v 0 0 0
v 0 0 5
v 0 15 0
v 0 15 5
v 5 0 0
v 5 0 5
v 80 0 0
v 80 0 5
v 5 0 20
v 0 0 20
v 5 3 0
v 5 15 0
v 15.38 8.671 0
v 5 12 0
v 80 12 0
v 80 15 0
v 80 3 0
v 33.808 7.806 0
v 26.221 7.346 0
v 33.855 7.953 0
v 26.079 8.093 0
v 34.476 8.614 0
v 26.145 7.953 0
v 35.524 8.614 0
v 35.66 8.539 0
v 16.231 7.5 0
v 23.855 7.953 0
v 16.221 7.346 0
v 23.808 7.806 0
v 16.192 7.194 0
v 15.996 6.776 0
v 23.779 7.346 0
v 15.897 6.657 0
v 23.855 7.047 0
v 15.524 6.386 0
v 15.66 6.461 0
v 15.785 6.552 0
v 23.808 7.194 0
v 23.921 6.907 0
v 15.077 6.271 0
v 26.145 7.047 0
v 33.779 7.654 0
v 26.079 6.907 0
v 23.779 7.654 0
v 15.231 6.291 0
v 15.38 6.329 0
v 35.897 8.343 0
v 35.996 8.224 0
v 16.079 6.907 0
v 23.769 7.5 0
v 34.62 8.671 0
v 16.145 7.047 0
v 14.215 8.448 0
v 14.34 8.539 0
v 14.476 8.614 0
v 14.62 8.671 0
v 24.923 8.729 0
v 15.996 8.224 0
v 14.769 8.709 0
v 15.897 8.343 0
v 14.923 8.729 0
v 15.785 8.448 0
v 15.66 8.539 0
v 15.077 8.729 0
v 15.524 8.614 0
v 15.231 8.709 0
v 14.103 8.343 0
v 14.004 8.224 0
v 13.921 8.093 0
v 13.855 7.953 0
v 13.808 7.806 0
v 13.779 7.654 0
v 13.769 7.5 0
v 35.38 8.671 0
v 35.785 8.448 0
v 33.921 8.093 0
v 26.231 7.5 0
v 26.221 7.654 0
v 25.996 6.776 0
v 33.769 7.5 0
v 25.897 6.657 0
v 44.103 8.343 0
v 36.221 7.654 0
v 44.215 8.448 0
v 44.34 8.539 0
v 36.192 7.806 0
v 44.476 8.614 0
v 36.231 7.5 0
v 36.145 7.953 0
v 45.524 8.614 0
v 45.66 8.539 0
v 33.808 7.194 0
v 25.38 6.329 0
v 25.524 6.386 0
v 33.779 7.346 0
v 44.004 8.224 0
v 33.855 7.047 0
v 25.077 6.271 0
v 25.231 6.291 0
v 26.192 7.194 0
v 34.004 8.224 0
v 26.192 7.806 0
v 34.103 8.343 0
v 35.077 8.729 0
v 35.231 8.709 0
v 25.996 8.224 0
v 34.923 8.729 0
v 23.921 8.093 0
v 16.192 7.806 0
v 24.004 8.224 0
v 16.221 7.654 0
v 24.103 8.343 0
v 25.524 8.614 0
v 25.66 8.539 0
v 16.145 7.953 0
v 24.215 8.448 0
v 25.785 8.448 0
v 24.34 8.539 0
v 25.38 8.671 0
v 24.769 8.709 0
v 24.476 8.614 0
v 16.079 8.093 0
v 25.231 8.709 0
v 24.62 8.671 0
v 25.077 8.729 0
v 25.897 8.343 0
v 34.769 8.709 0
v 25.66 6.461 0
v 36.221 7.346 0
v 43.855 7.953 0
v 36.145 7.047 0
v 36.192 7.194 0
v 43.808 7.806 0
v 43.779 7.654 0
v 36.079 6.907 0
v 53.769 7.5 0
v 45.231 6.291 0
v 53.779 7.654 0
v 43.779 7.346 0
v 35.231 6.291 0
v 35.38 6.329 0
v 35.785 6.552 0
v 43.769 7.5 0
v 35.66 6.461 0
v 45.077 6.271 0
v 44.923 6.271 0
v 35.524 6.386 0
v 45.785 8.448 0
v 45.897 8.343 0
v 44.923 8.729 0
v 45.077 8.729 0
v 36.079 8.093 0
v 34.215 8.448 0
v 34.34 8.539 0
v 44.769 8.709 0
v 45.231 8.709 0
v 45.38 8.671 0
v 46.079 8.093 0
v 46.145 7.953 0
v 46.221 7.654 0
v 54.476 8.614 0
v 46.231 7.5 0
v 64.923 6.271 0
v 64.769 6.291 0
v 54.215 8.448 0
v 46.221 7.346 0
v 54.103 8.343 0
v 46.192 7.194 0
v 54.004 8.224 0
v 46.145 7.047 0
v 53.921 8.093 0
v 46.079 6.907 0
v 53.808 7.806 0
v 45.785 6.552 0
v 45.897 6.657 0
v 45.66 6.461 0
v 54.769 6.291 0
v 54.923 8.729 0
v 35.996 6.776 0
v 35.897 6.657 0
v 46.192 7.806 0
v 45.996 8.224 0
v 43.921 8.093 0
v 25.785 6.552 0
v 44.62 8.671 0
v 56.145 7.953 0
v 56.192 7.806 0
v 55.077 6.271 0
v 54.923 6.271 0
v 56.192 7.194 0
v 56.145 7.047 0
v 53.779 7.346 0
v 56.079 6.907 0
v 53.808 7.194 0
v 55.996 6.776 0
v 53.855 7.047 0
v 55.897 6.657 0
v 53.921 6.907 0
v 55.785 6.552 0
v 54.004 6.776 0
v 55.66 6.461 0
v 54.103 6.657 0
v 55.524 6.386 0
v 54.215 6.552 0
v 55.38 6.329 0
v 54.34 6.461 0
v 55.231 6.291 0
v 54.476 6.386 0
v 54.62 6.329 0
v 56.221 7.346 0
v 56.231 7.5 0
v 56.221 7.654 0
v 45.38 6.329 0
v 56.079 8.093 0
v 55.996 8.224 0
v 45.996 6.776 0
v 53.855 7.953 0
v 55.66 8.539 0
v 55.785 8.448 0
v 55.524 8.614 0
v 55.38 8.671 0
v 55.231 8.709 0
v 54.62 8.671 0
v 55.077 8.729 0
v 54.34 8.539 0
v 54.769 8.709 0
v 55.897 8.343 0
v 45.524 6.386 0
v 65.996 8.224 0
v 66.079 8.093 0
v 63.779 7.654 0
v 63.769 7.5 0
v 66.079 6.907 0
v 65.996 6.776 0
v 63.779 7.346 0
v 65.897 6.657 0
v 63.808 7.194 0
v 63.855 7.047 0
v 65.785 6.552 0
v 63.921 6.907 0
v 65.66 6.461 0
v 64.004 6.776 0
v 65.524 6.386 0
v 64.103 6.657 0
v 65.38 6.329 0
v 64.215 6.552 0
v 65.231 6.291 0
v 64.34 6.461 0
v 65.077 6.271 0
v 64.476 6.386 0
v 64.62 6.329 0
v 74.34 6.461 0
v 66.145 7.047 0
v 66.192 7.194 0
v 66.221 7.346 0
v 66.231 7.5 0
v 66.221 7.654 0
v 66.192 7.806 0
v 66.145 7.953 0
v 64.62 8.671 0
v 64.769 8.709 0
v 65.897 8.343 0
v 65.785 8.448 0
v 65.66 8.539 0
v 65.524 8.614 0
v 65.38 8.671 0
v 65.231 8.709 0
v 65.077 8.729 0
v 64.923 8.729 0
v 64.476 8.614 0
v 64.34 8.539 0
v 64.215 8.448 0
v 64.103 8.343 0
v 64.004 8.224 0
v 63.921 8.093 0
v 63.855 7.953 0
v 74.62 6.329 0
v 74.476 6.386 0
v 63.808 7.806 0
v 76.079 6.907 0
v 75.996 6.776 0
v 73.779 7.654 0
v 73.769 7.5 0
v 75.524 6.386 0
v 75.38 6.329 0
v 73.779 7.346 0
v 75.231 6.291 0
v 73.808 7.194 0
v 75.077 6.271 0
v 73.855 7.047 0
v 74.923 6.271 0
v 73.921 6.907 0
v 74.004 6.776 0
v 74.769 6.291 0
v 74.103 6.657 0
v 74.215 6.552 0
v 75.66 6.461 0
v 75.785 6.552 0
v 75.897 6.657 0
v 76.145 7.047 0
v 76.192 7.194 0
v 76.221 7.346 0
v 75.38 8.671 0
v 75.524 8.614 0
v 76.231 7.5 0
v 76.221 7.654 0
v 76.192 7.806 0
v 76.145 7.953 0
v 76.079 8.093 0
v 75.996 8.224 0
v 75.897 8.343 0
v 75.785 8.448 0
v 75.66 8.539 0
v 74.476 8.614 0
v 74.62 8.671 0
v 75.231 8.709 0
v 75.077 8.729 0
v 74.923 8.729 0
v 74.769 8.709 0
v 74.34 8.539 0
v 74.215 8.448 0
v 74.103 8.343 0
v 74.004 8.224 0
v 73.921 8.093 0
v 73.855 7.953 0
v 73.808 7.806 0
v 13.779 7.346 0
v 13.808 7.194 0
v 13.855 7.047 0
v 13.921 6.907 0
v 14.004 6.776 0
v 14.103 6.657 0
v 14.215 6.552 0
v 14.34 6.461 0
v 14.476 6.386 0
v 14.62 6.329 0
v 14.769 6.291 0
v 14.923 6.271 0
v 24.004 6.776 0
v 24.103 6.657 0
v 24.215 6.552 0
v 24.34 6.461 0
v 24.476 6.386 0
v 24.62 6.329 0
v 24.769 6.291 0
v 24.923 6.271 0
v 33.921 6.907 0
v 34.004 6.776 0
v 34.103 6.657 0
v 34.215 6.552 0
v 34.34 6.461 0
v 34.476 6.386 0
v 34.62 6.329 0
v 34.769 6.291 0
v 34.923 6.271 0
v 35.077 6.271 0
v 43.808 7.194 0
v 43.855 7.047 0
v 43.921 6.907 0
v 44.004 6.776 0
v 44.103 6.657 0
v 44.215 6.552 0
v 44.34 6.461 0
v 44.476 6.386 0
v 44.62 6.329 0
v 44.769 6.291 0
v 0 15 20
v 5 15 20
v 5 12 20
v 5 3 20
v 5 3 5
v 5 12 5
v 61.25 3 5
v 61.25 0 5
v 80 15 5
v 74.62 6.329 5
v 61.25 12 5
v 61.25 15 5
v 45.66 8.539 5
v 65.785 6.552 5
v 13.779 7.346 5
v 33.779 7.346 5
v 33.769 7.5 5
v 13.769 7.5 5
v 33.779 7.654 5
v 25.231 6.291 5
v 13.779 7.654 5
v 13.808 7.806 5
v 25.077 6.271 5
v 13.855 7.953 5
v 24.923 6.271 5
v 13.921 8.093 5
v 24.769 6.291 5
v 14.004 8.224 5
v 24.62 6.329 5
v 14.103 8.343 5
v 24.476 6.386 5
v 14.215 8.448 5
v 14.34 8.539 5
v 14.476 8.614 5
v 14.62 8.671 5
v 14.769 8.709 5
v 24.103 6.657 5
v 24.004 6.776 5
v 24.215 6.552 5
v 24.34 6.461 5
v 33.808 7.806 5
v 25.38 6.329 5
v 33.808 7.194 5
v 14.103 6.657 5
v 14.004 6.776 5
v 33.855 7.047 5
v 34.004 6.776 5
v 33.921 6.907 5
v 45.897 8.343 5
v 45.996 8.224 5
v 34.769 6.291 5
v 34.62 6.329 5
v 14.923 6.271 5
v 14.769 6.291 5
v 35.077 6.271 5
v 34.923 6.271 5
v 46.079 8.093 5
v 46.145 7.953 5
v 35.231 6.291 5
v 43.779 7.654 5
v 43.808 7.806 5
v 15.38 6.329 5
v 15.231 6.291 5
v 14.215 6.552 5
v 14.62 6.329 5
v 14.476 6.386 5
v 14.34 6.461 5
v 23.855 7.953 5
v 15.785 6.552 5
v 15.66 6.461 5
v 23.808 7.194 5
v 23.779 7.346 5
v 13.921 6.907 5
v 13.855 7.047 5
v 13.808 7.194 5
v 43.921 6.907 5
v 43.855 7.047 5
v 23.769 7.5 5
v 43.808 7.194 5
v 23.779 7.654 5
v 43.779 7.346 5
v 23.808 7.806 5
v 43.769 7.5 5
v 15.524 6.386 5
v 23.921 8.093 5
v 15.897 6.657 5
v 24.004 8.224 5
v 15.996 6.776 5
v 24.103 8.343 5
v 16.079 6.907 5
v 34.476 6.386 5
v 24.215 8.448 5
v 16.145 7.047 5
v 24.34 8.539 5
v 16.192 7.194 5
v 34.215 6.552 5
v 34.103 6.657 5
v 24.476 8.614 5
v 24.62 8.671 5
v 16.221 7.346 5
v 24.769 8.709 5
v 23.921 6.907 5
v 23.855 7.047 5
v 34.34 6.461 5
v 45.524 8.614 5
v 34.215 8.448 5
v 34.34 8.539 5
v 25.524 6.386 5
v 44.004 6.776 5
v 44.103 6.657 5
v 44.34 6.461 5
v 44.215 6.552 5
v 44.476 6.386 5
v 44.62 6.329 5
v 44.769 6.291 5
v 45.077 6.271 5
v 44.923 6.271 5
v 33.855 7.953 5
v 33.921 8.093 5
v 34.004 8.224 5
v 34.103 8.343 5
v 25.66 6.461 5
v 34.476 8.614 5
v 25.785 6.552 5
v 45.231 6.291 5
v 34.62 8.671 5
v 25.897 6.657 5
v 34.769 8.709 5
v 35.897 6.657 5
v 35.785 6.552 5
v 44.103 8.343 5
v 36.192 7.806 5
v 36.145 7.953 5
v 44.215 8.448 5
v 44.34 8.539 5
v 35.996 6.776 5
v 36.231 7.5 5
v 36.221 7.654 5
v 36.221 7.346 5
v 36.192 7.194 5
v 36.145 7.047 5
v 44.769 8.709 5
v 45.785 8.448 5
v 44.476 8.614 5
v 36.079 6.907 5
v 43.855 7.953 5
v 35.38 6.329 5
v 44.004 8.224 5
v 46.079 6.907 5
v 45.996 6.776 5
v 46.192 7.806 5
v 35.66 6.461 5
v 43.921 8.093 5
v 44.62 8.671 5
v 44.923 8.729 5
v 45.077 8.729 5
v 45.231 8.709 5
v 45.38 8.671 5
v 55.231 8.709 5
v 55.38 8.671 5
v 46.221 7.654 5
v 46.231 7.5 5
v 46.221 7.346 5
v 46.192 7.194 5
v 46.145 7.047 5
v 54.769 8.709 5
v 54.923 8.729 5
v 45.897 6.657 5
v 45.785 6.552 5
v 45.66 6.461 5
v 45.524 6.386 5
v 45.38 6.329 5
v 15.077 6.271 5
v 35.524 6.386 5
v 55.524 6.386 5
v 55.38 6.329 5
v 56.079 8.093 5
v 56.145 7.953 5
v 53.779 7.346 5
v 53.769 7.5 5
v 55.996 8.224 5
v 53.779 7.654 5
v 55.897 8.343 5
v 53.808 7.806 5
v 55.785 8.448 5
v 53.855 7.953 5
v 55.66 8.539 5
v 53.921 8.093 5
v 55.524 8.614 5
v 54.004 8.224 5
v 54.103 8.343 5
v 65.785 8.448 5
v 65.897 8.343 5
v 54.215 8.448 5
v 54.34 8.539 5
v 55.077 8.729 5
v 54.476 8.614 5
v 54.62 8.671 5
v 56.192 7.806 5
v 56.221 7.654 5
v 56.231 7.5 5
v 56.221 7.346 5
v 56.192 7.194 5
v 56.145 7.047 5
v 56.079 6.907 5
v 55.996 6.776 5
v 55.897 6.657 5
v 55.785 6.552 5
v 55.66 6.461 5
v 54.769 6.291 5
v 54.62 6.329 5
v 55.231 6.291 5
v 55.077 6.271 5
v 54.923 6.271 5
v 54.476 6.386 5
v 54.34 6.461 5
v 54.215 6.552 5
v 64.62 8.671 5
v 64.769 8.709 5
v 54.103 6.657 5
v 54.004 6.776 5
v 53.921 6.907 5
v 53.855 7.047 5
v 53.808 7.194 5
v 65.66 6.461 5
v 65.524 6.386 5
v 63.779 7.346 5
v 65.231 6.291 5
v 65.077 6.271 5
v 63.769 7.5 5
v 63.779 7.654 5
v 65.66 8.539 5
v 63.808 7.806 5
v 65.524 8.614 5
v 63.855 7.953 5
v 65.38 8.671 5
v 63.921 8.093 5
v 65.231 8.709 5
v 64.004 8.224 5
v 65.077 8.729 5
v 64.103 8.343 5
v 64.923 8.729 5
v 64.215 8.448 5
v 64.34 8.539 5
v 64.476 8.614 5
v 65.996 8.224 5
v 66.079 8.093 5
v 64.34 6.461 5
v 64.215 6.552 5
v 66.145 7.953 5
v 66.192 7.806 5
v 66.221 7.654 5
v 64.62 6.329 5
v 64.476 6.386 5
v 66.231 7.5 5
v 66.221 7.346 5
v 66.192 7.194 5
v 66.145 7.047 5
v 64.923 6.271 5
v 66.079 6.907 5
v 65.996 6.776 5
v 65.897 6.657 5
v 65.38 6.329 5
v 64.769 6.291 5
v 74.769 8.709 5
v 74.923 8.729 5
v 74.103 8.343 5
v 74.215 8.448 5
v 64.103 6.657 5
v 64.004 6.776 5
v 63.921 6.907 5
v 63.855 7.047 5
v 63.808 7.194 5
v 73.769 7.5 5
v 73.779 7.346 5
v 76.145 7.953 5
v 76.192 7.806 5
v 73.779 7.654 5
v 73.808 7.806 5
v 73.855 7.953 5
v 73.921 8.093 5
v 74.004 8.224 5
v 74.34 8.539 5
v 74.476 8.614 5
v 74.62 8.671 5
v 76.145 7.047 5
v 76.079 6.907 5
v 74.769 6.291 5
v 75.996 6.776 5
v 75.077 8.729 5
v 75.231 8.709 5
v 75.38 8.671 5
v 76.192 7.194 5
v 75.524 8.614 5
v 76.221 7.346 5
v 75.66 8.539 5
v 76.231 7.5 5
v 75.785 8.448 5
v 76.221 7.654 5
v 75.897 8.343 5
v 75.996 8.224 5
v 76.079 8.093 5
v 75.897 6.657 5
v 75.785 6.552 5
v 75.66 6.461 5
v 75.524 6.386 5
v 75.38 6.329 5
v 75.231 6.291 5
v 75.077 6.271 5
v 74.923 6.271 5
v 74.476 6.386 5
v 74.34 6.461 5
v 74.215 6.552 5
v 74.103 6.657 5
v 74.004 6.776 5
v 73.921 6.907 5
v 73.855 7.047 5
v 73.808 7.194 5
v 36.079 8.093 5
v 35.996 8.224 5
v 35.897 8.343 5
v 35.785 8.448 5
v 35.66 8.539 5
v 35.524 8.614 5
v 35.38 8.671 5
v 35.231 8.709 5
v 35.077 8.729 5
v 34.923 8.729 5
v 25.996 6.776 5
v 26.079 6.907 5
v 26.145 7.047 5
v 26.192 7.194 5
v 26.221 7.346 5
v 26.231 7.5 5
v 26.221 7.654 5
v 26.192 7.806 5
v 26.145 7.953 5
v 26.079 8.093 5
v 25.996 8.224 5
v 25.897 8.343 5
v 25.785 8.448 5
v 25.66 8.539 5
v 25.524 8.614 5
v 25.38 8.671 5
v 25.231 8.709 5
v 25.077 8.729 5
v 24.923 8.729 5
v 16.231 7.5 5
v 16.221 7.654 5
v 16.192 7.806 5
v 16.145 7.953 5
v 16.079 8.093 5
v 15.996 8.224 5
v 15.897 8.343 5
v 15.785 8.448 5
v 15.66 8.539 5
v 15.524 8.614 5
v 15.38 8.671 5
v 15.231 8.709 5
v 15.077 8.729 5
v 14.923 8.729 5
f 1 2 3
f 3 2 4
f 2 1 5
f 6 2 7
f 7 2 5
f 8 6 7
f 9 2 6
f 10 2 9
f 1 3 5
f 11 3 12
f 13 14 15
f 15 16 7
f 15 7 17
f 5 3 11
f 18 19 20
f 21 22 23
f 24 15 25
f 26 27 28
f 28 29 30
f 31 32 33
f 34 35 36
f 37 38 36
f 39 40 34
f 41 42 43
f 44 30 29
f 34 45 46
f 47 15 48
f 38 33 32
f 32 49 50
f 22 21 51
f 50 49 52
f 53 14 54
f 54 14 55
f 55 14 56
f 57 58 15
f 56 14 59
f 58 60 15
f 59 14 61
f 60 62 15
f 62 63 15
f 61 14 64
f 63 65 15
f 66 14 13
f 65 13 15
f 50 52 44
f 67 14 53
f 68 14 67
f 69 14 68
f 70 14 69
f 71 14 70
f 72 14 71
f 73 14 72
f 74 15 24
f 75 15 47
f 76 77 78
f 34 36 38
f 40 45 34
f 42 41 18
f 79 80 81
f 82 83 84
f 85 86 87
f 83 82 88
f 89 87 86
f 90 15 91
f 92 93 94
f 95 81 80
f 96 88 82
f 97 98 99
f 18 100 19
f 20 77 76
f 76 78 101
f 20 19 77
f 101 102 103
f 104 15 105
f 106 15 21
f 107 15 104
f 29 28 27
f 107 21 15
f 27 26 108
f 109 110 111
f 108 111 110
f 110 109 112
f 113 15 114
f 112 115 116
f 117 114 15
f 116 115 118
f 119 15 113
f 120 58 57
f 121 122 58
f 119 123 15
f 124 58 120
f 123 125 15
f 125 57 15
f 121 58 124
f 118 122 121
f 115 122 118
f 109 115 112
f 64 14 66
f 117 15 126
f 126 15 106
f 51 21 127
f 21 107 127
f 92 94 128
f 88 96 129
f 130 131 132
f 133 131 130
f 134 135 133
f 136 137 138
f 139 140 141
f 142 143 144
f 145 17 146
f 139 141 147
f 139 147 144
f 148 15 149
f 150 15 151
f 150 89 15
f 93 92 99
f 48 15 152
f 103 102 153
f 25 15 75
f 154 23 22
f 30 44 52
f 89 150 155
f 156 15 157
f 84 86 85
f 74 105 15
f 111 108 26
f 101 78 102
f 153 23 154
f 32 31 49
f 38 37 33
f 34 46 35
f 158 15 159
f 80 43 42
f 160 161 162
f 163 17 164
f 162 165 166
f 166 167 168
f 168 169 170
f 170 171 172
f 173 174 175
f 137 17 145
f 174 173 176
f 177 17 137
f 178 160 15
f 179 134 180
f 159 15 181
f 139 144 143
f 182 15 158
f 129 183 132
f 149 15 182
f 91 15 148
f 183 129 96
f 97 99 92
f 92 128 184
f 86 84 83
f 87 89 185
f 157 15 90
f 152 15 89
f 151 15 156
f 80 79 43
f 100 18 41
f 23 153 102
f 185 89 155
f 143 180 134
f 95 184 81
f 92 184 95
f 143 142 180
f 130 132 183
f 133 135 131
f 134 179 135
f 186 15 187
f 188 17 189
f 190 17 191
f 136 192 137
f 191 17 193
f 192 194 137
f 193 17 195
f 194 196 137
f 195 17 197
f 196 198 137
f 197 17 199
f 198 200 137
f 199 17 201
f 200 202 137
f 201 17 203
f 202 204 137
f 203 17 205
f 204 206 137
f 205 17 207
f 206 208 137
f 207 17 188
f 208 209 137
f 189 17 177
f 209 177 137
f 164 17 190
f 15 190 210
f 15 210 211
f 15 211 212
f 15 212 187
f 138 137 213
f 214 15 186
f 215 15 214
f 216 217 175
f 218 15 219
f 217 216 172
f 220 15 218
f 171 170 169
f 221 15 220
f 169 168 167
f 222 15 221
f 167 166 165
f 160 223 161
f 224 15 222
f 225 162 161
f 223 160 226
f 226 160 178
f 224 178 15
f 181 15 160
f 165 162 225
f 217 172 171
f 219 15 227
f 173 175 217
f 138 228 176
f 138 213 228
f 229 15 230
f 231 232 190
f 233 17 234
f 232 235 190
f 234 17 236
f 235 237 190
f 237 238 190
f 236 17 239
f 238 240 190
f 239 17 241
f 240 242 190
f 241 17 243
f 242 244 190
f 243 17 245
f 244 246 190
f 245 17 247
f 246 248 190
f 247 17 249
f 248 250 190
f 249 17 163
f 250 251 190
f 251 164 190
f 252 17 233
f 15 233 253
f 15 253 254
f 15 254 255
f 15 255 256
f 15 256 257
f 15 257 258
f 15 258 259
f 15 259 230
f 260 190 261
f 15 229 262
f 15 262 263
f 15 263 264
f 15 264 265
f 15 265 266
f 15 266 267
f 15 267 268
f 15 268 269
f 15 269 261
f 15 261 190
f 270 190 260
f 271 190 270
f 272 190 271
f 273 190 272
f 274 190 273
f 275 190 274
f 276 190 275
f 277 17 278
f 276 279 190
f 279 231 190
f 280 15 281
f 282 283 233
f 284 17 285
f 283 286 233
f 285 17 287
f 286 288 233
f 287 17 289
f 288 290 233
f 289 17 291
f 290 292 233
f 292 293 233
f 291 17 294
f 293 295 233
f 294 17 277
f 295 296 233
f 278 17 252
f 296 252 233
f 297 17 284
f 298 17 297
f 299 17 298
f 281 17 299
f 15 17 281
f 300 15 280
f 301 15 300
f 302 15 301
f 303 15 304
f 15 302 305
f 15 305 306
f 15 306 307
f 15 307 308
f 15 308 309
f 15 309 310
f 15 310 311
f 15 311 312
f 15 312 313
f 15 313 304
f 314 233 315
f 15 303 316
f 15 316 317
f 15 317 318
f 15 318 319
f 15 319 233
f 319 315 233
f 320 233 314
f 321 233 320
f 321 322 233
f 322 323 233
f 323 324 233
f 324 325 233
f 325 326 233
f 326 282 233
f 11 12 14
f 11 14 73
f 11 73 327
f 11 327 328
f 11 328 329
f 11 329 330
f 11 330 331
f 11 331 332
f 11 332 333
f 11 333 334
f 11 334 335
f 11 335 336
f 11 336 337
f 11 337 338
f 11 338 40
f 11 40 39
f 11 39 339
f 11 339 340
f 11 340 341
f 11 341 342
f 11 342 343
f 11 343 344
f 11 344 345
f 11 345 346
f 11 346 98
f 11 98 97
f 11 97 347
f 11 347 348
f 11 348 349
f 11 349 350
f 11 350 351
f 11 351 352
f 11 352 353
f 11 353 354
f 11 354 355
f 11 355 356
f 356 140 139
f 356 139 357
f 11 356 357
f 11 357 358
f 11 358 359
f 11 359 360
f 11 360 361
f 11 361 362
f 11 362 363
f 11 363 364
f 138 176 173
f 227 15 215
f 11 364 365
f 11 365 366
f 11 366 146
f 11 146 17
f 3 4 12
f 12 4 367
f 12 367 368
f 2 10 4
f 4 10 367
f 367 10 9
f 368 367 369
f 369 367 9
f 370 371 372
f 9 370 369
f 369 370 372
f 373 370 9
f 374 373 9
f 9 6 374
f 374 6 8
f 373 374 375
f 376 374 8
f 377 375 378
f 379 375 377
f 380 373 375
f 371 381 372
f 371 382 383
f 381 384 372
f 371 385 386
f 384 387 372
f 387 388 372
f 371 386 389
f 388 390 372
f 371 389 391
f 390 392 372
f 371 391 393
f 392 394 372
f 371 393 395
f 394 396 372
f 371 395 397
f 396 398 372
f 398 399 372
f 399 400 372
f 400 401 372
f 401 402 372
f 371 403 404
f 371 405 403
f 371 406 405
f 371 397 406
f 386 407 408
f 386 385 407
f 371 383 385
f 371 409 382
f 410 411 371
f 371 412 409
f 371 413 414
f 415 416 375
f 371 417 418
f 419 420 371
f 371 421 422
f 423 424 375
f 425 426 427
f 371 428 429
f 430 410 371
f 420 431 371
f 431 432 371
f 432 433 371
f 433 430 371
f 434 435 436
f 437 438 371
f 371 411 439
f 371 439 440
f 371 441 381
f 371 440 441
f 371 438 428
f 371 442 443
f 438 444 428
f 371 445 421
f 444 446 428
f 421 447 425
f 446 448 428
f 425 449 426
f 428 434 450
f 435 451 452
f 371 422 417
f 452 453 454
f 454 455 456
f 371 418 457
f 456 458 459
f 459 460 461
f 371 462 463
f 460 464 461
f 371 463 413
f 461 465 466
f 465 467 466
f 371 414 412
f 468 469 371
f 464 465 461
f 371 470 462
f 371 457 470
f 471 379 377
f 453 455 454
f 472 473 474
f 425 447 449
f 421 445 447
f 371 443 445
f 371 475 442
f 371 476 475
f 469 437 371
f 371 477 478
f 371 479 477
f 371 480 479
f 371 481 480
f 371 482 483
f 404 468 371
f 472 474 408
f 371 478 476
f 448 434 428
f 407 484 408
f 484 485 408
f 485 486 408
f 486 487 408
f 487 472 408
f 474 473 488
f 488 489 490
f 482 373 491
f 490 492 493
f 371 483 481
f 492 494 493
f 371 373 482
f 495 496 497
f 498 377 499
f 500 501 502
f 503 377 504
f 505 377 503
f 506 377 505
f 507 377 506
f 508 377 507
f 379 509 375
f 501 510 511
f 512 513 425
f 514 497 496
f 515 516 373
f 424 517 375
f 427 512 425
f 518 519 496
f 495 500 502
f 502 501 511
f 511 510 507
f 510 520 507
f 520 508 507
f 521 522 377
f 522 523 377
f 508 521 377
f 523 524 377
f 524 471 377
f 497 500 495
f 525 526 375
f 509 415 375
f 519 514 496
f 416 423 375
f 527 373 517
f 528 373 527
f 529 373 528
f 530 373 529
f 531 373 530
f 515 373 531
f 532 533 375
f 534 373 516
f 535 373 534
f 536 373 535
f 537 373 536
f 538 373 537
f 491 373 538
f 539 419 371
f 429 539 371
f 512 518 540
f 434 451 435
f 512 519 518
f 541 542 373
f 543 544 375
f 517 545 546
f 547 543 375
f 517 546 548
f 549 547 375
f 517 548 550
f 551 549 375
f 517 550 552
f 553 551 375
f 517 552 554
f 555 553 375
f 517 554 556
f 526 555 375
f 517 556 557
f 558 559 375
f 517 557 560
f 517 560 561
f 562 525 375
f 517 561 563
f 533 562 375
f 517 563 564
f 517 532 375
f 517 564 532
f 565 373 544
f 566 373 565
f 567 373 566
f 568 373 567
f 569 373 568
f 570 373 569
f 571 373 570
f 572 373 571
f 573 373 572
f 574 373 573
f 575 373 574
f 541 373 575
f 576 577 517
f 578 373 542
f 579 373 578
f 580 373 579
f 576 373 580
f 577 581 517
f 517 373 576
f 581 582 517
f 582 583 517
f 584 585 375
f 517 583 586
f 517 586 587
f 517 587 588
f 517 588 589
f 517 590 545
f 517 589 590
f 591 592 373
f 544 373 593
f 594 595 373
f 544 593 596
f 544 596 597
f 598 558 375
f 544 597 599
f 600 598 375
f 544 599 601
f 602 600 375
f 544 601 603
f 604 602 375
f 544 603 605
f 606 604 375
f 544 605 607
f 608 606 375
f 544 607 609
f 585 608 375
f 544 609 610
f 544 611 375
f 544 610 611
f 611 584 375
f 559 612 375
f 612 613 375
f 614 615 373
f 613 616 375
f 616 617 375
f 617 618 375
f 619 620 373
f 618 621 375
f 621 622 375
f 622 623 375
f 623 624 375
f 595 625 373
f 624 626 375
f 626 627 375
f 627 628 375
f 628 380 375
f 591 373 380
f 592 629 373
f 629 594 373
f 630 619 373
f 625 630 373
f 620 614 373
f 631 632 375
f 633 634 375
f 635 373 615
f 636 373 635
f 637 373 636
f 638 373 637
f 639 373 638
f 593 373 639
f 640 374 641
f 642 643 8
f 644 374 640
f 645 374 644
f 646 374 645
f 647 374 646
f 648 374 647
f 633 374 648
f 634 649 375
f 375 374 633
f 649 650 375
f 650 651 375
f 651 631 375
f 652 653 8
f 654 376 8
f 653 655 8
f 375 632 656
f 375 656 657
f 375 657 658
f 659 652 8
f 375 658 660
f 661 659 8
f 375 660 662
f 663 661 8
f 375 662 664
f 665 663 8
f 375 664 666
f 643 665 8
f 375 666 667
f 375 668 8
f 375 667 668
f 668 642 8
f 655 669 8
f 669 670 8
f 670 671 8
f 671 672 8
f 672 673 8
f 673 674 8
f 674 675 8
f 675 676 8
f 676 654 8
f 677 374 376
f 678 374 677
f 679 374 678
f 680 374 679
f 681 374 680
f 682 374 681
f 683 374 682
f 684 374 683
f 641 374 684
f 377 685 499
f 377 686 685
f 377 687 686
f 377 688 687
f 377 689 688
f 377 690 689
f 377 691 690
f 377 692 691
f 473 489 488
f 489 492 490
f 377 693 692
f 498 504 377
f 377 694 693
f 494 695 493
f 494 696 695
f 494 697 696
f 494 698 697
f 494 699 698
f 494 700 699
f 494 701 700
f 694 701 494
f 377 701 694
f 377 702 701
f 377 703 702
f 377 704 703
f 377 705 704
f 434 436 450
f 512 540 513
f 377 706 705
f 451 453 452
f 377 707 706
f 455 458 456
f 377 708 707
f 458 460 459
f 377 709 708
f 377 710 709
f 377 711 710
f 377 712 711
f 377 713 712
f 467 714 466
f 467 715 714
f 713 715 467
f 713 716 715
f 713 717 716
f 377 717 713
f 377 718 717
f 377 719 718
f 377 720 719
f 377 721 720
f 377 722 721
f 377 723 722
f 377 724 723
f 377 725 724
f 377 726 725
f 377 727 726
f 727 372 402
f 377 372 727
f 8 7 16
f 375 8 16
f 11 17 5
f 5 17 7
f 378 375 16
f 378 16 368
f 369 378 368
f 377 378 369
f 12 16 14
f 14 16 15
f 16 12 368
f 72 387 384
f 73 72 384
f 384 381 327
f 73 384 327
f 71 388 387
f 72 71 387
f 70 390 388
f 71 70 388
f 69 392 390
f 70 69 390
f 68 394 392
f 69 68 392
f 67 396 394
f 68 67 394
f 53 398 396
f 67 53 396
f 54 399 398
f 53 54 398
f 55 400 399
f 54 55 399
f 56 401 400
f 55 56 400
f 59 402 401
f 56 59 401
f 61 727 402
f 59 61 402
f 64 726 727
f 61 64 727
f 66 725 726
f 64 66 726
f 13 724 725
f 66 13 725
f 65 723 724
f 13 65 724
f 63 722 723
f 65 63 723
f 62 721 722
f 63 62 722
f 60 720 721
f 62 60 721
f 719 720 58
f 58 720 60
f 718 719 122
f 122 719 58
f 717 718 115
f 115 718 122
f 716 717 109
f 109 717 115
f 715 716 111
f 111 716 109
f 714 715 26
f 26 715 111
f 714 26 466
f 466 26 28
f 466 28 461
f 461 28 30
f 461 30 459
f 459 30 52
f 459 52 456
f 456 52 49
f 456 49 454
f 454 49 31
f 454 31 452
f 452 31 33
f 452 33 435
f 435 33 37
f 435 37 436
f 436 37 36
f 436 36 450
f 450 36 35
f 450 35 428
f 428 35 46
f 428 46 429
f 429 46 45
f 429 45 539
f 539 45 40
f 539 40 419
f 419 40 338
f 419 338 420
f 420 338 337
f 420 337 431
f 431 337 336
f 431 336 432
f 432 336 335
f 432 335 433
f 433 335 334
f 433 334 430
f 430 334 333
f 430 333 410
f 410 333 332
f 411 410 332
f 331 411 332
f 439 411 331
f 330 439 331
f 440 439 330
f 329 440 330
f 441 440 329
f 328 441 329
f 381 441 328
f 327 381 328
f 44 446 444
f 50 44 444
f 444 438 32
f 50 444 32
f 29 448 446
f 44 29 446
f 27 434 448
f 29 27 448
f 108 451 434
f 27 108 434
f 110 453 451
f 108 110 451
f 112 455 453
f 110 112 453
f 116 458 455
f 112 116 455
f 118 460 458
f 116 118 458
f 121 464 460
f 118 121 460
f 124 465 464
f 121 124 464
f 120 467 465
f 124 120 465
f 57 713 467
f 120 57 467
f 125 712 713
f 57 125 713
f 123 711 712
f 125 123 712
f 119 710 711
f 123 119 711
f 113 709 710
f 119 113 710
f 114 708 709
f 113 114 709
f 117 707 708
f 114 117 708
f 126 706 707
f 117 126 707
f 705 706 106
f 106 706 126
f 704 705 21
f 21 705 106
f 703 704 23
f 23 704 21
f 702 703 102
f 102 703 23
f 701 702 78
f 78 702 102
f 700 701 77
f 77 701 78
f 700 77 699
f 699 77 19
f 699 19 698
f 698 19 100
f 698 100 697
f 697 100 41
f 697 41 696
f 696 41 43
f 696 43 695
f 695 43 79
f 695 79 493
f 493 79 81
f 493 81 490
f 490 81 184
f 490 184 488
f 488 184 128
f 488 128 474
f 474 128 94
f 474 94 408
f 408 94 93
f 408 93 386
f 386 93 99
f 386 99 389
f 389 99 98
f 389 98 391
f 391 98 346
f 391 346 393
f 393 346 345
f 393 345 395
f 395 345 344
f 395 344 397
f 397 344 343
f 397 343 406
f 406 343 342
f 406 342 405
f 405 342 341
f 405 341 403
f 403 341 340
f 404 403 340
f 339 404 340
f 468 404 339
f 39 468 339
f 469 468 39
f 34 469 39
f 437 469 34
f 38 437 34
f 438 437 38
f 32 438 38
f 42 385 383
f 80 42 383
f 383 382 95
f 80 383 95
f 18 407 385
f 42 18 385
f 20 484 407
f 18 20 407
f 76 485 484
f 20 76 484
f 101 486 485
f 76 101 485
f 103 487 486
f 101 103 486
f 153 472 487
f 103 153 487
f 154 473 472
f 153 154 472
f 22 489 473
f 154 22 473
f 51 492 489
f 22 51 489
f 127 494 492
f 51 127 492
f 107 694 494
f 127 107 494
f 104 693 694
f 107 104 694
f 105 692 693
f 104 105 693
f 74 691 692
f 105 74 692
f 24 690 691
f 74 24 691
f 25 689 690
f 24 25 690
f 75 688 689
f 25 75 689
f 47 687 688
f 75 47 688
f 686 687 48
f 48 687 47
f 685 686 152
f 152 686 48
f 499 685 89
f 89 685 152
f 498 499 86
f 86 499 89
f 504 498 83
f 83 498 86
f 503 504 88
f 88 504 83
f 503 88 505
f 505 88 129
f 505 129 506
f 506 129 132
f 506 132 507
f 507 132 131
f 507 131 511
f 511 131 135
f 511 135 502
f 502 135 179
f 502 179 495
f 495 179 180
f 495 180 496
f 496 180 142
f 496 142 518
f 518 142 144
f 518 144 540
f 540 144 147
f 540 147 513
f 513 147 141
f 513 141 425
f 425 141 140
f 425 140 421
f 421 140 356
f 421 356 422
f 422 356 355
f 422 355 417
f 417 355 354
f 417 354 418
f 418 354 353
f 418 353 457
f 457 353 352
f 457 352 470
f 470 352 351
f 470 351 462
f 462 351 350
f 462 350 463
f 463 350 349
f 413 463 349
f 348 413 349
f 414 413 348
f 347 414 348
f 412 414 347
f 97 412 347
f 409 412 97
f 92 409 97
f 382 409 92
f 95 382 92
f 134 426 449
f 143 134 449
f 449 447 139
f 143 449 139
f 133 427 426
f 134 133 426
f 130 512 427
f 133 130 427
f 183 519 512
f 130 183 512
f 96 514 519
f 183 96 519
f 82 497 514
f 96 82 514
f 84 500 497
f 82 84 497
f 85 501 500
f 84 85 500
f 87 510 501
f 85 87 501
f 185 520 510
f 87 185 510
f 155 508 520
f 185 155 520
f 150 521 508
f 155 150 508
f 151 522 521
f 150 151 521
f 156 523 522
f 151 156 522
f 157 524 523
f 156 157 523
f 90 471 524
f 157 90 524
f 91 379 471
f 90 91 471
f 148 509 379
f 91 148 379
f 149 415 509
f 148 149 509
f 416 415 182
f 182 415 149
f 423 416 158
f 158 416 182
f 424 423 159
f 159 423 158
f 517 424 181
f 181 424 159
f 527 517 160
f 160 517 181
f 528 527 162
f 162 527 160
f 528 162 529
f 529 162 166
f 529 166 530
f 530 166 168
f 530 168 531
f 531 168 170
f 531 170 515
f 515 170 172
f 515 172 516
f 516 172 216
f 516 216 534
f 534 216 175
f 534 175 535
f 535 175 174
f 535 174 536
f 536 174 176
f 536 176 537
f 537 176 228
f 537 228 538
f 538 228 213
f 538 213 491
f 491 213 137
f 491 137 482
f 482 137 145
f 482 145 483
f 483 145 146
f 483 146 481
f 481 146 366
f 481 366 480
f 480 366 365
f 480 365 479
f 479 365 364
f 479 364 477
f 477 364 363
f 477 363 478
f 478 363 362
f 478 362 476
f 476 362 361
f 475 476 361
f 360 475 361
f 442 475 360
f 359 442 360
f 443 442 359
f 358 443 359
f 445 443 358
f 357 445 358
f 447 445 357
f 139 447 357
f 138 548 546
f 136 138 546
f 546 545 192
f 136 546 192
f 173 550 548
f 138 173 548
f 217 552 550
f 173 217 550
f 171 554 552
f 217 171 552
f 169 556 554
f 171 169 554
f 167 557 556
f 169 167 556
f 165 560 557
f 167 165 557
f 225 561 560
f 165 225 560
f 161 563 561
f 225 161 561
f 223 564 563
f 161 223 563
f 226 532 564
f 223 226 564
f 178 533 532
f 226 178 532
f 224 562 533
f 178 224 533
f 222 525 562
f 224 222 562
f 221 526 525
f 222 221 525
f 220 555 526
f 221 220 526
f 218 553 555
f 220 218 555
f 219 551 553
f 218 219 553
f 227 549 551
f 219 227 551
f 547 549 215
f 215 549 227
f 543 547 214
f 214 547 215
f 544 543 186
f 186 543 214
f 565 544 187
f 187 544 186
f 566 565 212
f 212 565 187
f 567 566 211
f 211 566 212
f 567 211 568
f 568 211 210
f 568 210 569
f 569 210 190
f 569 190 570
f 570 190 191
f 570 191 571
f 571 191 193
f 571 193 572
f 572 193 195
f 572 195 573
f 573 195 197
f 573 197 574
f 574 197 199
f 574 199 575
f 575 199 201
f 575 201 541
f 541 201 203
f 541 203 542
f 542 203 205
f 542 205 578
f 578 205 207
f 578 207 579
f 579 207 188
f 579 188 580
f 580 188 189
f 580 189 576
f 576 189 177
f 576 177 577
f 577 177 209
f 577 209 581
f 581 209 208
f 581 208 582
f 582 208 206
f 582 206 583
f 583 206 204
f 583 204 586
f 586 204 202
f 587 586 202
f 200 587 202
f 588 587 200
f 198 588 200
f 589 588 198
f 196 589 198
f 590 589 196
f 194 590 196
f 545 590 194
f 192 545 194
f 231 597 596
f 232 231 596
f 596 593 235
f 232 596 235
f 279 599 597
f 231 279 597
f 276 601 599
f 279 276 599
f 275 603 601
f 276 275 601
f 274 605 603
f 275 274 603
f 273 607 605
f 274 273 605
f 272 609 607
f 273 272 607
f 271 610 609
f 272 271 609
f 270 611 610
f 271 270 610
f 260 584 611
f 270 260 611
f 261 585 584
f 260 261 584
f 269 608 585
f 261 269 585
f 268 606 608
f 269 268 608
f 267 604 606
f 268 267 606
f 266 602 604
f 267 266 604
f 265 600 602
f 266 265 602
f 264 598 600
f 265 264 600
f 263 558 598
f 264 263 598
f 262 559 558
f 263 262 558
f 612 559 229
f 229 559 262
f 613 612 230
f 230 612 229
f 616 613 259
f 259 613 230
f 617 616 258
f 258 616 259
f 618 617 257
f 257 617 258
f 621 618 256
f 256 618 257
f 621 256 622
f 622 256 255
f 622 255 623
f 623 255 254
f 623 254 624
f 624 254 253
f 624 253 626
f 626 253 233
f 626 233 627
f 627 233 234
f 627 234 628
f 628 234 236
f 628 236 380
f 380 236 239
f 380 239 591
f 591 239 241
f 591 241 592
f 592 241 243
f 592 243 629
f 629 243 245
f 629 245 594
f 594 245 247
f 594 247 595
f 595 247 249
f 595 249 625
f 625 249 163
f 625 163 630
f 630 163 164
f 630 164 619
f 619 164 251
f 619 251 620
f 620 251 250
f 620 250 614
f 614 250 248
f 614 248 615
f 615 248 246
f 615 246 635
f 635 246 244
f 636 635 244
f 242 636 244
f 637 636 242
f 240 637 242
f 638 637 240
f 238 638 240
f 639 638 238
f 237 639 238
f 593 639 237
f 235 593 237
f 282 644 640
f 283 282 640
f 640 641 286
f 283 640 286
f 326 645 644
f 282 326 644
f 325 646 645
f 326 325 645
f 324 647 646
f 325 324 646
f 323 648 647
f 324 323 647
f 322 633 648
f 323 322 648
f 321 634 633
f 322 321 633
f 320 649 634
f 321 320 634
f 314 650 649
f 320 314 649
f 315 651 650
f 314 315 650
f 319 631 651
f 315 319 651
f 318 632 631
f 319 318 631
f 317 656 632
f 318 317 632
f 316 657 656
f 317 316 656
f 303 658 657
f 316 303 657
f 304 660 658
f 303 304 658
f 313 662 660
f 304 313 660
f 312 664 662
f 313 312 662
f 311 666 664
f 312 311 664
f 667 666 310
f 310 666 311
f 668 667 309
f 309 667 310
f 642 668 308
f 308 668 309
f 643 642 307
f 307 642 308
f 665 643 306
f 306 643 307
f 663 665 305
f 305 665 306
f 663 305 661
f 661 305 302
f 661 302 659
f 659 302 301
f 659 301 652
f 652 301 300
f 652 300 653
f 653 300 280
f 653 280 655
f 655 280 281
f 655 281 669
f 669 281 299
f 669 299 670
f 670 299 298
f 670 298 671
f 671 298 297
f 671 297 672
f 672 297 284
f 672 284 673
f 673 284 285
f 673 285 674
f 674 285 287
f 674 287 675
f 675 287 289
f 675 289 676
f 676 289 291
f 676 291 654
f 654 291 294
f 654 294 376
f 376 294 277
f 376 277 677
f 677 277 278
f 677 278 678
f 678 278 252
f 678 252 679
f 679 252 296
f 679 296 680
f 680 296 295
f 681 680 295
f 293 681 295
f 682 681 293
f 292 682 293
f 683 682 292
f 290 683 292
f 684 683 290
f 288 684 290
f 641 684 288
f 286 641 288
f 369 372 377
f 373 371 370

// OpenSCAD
// Resolution
$fn=50;

// Base of stand
// Note, remote the radius from the dimensions
// of th rectangular base
base_width = 15;
base_thickness = 5;
base_length = 80;

// Screw Holes
screw_radius = 1.1310 + 0.1; 

difference(){
cube([base_length,base_width,base_thickness]);

translate([75,0.5*base_width,0]) cylinder(1.5*base_thickness,screw_radius,screw_radius);
translate([65,0.5*base_width,0]) cylinder(1.5*base_thickness,screw_radius,screw_radius);
translate([55,0.5*base_width,0]) cylinder(1.5*base_thickness,screw_radius,screw_radius);
translate([45,0.5*base_width,0]) cylinder(1.5*base_thickness,screw_radius,screw_radius);
translate([35,0.5*base_width,0]) cylinder(1.5*base_thickness,screw_radius,screw_radius);
translate([35,0.5*base_width,0]) cylinder(1.5*base_thickness,screw_radius,screw_radius);
translate([25,0.5*base_width,0]) cylinder(1.5*base_thickness,screw_radius,screw_radius);
translate([15,0.5*base_width,0]) cylinder(1.5*base_thickness,screw_radius,screw_radius);
}

translate([5,0,0])rotate([0,-90,0]) cube([20,15,5]);

translate([5,0,0])rotate([-90,-90,0]) linear_extrude(3) polygon(points=[[0,0],[20,0],[0,75],[0,0]],paths=[[0,1,2,3]]);

translate([5,12,0]) rotate([-90,-90,0]) linear_extrude(3) polygon(points=[[0,0],[20,0],[0,75],[0,0]],paths=[[0,1,2,3]]);
